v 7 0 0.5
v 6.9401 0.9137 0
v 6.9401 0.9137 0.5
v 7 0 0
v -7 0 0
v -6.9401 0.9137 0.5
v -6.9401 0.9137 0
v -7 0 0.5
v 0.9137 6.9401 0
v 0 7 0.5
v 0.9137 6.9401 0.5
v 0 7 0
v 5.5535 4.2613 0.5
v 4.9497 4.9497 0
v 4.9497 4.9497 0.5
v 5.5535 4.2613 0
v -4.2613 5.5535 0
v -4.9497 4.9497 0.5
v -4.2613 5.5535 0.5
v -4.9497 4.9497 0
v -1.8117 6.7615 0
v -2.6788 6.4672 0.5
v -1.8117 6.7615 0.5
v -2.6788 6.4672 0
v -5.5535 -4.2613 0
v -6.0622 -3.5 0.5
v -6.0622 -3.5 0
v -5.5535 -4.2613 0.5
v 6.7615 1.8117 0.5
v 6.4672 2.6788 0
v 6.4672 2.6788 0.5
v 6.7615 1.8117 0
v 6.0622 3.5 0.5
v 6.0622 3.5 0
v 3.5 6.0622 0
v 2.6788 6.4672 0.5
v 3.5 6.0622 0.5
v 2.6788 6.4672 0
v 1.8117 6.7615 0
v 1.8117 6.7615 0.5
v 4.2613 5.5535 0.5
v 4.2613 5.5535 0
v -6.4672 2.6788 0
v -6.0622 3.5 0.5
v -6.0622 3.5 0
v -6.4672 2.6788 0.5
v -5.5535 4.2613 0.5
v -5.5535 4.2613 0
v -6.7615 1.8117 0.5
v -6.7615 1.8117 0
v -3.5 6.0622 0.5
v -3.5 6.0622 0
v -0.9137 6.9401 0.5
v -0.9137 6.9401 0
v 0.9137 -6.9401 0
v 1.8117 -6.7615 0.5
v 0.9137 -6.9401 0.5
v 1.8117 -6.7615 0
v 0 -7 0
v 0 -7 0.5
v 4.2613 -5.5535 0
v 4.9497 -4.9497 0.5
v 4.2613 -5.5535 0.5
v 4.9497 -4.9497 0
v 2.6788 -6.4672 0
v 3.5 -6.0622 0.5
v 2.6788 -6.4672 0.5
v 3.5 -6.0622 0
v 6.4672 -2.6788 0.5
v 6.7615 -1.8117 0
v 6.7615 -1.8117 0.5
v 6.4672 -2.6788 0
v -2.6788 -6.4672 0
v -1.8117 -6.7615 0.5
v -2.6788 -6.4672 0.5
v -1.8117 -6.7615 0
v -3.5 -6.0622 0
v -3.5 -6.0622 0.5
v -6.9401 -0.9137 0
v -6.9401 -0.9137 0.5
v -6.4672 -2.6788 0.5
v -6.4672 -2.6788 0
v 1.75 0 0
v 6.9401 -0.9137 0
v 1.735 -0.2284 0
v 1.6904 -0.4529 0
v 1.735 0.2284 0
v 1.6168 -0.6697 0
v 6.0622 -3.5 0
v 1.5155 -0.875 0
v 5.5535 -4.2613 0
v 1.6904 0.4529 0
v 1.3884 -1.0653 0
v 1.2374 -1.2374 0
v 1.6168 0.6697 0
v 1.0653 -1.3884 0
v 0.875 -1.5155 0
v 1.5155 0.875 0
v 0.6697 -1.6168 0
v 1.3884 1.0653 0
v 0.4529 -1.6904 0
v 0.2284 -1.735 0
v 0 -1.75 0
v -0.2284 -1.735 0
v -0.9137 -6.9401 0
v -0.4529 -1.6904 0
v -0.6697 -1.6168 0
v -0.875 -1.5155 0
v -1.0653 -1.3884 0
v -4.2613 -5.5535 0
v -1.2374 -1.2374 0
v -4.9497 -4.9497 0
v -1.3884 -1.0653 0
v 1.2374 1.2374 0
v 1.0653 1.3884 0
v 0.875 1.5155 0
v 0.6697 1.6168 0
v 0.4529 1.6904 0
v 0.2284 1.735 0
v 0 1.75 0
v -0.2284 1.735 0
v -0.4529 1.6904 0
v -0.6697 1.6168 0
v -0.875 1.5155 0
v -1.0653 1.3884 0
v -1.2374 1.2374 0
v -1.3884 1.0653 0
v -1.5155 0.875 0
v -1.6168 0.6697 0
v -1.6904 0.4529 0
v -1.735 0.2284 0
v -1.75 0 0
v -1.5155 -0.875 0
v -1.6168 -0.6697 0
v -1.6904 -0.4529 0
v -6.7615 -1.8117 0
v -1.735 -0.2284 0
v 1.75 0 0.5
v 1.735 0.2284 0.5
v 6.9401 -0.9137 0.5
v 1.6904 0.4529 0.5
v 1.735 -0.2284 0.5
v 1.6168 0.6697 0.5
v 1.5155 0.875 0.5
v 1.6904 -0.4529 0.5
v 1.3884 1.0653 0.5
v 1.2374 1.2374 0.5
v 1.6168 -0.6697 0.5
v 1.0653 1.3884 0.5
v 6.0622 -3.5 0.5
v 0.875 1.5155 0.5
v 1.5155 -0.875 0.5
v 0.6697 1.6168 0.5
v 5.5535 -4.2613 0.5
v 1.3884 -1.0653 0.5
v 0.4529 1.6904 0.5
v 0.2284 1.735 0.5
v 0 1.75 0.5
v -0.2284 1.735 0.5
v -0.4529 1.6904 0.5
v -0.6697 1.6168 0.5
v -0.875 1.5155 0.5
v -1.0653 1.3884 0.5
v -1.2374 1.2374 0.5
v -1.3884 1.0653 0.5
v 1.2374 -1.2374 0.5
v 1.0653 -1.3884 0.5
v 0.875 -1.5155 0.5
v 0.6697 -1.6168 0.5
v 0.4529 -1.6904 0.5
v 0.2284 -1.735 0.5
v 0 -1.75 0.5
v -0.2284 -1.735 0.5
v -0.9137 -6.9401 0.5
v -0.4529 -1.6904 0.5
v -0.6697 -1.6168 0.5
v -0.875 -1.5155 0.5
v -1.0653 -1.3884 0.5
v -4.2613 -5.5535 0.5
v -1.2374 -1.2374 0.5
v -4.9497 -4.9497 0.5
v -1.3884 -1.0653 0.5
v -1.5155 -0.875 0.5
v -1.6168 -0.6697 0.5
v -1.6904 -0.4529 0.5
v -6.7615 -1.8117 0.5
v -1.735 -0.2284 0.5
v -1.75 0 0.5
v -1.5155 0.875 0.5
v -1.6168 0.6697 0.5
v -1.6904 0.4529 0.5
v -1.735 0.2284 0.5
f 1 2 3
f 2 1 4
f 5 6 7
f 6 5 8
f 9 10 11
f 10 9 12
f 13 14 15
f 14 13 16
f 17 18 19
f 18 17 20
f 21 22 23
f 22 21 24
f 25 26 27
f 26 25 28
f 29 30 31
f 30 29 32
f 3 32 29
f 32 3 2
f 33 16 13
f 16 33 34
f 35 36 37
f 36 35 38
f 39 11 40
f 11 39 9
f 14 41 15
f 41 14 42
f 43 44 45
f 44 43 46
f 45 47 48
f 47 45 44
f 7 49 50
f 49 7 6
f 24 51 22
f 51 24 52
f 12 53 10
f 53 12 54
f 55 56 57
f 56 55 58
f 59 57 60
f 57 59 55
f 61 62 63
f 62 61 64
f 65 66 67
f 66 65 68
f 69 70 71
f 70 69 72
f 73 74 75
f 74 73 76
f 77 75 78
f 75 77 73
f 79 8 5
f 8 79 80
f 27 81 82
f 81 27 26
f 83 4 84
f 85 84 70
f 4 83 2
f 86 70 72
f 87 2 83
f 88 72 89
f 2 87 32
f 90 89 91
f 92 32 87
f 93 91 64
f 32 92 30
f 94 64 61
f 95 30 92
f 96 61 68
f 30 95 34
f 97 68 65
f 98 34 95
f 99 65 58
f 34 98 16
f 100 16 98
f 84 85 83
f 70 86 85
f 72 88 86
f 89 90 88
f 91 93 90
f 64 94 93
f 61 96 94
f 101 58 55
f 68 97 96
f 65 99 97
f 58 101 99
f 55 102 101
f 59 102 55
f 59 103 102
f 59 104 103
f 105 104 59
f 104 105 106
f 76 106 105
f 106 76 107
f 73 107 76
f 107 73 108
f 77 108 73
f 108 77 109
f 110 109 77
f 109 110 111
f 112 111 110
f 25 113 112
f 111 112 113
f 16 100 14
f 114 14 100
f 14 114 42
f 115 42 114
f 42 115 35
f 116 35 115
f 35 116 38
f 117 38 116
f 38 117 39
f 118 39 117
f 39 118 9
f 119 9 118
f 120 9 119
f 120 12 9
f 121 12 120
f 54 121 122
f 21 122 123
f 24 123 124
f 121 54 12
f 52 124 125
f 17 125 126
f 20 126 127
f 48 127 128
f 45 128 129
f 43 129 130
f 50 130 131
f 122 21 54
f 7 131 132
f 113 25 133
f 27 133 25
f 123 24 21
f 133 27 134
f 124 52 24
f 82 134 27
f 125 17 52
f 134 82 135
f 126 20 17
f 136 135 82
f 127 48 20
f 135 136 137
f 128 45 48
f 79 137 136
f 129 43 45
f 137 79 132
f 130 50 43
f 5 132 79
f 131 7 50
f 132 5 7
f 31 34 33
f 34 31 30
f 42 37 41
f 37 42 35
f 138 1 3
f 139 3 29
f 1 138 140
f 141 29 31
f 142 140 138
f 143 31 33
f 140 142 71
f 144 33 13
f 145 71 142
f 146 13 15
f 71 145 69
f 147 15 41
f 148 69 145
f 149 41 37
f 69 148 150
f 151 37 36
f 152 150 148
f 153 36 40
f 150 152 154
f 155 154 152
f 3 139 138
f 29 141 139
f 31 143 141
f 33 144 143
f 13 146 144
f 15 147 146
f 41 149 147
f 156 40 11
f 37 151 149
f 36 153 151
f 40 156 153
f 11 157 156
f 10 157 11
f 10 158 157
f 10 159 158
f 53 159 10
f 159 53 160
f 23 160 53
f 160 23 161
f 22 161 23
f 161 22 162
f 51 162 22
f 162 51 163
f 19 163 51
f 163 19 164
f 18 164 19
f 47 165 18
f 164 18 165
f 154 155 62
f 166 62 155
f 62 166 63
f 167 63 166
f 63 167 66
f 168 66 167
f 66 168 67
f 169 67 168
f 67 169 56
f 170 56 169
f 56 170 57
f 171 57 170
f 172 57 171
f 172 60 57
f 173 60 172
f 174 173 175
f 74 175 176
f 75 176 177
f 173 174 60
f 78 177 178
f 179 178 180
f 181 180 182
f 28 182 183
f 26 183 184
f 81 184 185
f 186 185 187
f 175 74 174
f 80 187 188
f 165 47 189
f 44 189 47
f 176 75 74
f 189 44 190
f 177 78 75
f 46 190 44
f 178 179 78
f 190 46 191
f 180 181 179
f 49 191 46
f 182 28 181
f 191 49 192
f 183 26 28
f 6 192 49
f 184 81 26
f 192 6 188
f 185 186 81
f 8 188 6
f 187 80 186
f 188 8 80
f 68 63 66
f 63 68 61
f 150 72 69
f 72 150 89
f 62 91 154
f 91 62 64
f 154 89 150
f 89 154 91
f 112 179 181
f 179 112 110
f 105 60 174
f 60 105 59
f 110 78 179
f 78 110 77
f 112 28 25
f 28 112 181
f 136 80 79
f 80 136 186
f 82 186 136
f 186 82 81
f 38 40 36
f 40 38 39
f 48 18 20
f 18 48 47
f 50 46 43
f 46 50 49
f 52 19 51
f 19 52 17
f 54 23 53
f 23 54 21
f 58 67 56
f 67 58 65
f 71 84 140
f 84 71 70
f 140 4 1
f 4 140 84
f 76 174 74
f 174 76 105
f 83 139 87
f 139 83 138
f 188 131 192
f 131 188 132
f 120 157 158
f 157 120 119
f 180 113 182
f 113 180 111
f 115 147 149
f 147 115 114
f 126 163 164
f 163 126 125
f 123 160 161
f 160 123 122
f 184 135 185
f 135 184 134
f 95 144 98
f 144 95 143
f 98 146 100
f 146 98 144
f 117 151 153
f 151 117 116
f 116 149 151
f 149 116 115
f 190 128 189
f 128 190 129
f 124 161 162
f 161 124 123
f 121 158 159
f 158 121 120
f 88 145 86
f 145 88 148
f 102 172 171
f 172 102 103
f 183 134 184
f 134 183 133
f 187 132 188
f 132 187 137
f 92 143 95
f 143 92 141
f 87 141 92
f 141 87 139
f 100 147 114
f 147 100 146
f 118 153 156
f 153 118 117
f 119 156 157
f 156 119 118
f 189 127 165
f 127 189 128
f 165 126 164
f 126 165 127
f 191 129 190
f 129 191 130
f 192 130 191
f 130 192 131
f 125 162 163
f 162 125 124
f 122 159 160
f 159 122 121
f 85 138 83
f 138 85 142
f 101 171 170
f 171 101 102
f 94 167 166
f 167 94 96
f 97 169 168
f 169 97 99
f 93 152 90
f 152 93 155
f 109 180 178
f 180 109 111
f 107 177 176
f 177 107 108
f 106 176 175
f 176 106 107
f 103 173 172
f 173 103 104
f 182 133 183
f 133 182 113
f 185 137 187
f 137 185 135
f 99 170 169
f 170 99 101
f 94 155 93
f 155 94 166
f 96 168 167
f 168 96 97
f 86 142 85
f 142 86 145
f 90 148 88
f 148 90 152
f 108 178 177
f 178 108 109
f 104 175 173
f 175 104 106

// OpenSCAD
// file: parameters.scad
// =============================================================================
// Gen-BG — nightly 2026-10-04 (physics_scorer, honest magpylib watts)
// 8-pole / 9-coil dual rotor (best winding factor 0.945) pushed out to RL 46 with 9.9 mm tall copper on steel-seated magnets; 3 smaller coils per phase and less wire (257 m) than 6-coil.
// Clocking 0 deg (magnets N facing S) + D-flat keyed bore + index notch + flip-symmetric hole map.
// Windable 2-piece bobbin; turns = physics_scorer turns_fit; copper only between flanges.
// Steel back-iron: two 3.0 mm mild-steel discs (steel_backiron_disc.dxf); magnets sit ON the steel
// (through-pockets) -> score with --back-iron.
// =============================================================================
topology            = "dual_rotor";

// --- Wire / winding (physics_scorer winding-fit) -------------------------------
wire_awg            = 26;
wire_od             = 0.45;     // insulated OD mm (bare 0.405)
fill_realistic      = 0.60;     // insulated-wire area / window, hand-wound layered
turns               = 364;       // = physics_scorer turns_fit (do NOT raise)
coil_former_type    = "bobbin";
coil_core_inset     = 9.75;     // radial copper build: hub = copper boundary inset by this
wind_build_axial    = 0.0;      // nothing proud of the flanges
wind_build_radial   = 0.0;

// --- Bobbin (base + lid) ---------------------------------------------------------
coil_id_r           = 30.00;    // copper boundary sector
coil_od_r           = 62.00;
span_deg            = 32.93;    // = pitch - 2*asin((wall+0.85)/coil_id_r) -> >=1.2 mm stator web
former_web          = 9.90;     // copper height between flanges (TALL copper: steel keeps Bz up)
flange_t            = 0.80;     // >= 0.8 mm FDM wall rule (tall winds push on the flanges)
wall                = 1.00;     // flange lip beyond copper
former_bare_h       = former_web + 2 * flange_t;
coil_envelope_h     = former_bare_h + 2 * wind_build_axial;
tab_w               = 7.0;
tab_len             = 7.0;
tab_h               = former_bare_h / 2;
pin_d               = 1.9;      // 1.75 mm filament locating pin
coil_mount_r        = coil_od_r + 0.2 + 4.0;
lead_y              = 1.6;
lead_slot_w         = 0.9;
lead_groove_d       = 0.6;

// --- Gap -------------------------------------------------------------------------
run_clear           = 0.50;     // rotor face -> flange
gap_spacer_h        = run_clear + wind_build_axial;
m2m                 = coil_envelope_h + 2 * run_clear;   // rotor face to rotor face (= gap_sleeve length)

// --- Stator ----------------------------------------------------------------------
coil_stations       = 9;
bay_clear           = 0.25;
stator_thick        = former_bare_h;                        // bobbins flush both faces
stator_od           = 157.0;
shaft_clear_stator  = 14.0;     // stator is static; gap sleeve OD 12 spins inside

// --- Rotor(s) --------------------------------------------------------------------
magnet_Br           = 1.43;     // N52
magnet_d_large      = 20.0;
magnet_h_large      = 5.0;      // one O20x5 per pocket
magnet_h_small      = 5.0;      // one O5x5 per pocket
halbach_magnetisation = "diametric"; // O5x5 assist magnets MUST be DIAMETRICALLY magnetised (tangential)
rotor_b_same_axis   = true;     // same-index magnets share one axis: N faces S across the gap
large_pocket_d      = 20.3;
small_pocket_d      = 5.3;
pocket_h            = 5.10;     // THROUGH the carrier: magnet back face sits on the steel disc
large_n             = 8;
R_large             = 46.0;
R_small_inner       = 32.0;
R_small_mid         = 46.0;
R_small_outer       = 63.0;
small_r_list        = [R_small_inner, R_small_mid, R_small_outer];   // O5 pockets between poles
carrier_od          = 135.0;
carrier_thick       = pocket_h;
hub_h               = 10.0;
hub_od              = 24.0;     // slim hub so the M4 brace rods fit at R~18 inside the coil ring
hub_insert_d        = 4.0;      // M3 heat-set insert, radial, bears on the D-flat
rotor_b_offset_deg  = 0.0;      // CLOCKING: magnets directly opposite
shaft_key           = "dflat";
dflat_depth         = 0.5;      // 8 mm shaft with 0.5 mm flat (7.5 across flat)
index_notch_d       = 3.0;

// --- Steel back-iron (buyable laser-cut) -------------------------------------------
steel_t             = 3.0;      // mild steel thickness (not modelled by the image method; >=3 avoids saturation)
steel_center_hole   = 26.0;     // slips over the rotor hub (OD 24)

// --- Modular MAX interface ----------------------------------------------------------
shaft_bore          = 8.35;
dflat_x             = 4.0 - dflat_depth + (shaft_bore - 8.0) / 2;
bearing_d           = 21.85;
bearing_h           = 7.2;
m3_clear            = 3.5;
bolt_r_inner        = 27.0;     // M3 steel-disc clamp bolts (inside the magnet ring)
bolt_n_inner        = 4;
bolt_inner_angles   = [0, 90, 180, 270];
bolt_r_outer        = 59.0;     // M3 steel-disc clamp bolts (outside the magnet ring)
bolt_outer_angles   = [0, 90, 180, 270];
flange_bolt_r       = 73.5;     // frame rods: OUTSIDE the rotor OD (rotors spin inside them)
flange_bolt_n       = 9;
flange_bolt_offset  = 20.00;    // between coil stations -> never cuts a lead groove/tab
brace_r             = 18.0;
brace_d             = 4.3;      // temporary M4 jack rods (assembly only)
brace_n             = 4;
brace_angles        = [45, 135, 225, 315];          // flip-symmetric

spacer_pad_od       = 14.0;
spacer_pad_id       = m3_clear;
endbell_od          = 157.0;
endbell_thick       = 8.0;
endbell_shaft_clear = 10.0;
collar_h            = 10.0;
standoff_od         = 9.0;
frame_standoff_h    = run_clear + carrier_thick + hub_h + collar_h + 2.0;
sleeve_od           = 12.0;
plate_max_mm        = 410;

$fn = 64;
// main file
// Gen-BG — assembly gap shim, h = run_clear (rotor face -> flange); copper is inside the flanges
include <parameters.scad>;
$fn = 48;
difference() {
    cylinder(d=spacer_pad_od, h=gap_spacer_h);
    translate([0, 0, -0.1]) cylinder(d=spacer_pad_id, h=gap_spacer_h + 0.2);
}
